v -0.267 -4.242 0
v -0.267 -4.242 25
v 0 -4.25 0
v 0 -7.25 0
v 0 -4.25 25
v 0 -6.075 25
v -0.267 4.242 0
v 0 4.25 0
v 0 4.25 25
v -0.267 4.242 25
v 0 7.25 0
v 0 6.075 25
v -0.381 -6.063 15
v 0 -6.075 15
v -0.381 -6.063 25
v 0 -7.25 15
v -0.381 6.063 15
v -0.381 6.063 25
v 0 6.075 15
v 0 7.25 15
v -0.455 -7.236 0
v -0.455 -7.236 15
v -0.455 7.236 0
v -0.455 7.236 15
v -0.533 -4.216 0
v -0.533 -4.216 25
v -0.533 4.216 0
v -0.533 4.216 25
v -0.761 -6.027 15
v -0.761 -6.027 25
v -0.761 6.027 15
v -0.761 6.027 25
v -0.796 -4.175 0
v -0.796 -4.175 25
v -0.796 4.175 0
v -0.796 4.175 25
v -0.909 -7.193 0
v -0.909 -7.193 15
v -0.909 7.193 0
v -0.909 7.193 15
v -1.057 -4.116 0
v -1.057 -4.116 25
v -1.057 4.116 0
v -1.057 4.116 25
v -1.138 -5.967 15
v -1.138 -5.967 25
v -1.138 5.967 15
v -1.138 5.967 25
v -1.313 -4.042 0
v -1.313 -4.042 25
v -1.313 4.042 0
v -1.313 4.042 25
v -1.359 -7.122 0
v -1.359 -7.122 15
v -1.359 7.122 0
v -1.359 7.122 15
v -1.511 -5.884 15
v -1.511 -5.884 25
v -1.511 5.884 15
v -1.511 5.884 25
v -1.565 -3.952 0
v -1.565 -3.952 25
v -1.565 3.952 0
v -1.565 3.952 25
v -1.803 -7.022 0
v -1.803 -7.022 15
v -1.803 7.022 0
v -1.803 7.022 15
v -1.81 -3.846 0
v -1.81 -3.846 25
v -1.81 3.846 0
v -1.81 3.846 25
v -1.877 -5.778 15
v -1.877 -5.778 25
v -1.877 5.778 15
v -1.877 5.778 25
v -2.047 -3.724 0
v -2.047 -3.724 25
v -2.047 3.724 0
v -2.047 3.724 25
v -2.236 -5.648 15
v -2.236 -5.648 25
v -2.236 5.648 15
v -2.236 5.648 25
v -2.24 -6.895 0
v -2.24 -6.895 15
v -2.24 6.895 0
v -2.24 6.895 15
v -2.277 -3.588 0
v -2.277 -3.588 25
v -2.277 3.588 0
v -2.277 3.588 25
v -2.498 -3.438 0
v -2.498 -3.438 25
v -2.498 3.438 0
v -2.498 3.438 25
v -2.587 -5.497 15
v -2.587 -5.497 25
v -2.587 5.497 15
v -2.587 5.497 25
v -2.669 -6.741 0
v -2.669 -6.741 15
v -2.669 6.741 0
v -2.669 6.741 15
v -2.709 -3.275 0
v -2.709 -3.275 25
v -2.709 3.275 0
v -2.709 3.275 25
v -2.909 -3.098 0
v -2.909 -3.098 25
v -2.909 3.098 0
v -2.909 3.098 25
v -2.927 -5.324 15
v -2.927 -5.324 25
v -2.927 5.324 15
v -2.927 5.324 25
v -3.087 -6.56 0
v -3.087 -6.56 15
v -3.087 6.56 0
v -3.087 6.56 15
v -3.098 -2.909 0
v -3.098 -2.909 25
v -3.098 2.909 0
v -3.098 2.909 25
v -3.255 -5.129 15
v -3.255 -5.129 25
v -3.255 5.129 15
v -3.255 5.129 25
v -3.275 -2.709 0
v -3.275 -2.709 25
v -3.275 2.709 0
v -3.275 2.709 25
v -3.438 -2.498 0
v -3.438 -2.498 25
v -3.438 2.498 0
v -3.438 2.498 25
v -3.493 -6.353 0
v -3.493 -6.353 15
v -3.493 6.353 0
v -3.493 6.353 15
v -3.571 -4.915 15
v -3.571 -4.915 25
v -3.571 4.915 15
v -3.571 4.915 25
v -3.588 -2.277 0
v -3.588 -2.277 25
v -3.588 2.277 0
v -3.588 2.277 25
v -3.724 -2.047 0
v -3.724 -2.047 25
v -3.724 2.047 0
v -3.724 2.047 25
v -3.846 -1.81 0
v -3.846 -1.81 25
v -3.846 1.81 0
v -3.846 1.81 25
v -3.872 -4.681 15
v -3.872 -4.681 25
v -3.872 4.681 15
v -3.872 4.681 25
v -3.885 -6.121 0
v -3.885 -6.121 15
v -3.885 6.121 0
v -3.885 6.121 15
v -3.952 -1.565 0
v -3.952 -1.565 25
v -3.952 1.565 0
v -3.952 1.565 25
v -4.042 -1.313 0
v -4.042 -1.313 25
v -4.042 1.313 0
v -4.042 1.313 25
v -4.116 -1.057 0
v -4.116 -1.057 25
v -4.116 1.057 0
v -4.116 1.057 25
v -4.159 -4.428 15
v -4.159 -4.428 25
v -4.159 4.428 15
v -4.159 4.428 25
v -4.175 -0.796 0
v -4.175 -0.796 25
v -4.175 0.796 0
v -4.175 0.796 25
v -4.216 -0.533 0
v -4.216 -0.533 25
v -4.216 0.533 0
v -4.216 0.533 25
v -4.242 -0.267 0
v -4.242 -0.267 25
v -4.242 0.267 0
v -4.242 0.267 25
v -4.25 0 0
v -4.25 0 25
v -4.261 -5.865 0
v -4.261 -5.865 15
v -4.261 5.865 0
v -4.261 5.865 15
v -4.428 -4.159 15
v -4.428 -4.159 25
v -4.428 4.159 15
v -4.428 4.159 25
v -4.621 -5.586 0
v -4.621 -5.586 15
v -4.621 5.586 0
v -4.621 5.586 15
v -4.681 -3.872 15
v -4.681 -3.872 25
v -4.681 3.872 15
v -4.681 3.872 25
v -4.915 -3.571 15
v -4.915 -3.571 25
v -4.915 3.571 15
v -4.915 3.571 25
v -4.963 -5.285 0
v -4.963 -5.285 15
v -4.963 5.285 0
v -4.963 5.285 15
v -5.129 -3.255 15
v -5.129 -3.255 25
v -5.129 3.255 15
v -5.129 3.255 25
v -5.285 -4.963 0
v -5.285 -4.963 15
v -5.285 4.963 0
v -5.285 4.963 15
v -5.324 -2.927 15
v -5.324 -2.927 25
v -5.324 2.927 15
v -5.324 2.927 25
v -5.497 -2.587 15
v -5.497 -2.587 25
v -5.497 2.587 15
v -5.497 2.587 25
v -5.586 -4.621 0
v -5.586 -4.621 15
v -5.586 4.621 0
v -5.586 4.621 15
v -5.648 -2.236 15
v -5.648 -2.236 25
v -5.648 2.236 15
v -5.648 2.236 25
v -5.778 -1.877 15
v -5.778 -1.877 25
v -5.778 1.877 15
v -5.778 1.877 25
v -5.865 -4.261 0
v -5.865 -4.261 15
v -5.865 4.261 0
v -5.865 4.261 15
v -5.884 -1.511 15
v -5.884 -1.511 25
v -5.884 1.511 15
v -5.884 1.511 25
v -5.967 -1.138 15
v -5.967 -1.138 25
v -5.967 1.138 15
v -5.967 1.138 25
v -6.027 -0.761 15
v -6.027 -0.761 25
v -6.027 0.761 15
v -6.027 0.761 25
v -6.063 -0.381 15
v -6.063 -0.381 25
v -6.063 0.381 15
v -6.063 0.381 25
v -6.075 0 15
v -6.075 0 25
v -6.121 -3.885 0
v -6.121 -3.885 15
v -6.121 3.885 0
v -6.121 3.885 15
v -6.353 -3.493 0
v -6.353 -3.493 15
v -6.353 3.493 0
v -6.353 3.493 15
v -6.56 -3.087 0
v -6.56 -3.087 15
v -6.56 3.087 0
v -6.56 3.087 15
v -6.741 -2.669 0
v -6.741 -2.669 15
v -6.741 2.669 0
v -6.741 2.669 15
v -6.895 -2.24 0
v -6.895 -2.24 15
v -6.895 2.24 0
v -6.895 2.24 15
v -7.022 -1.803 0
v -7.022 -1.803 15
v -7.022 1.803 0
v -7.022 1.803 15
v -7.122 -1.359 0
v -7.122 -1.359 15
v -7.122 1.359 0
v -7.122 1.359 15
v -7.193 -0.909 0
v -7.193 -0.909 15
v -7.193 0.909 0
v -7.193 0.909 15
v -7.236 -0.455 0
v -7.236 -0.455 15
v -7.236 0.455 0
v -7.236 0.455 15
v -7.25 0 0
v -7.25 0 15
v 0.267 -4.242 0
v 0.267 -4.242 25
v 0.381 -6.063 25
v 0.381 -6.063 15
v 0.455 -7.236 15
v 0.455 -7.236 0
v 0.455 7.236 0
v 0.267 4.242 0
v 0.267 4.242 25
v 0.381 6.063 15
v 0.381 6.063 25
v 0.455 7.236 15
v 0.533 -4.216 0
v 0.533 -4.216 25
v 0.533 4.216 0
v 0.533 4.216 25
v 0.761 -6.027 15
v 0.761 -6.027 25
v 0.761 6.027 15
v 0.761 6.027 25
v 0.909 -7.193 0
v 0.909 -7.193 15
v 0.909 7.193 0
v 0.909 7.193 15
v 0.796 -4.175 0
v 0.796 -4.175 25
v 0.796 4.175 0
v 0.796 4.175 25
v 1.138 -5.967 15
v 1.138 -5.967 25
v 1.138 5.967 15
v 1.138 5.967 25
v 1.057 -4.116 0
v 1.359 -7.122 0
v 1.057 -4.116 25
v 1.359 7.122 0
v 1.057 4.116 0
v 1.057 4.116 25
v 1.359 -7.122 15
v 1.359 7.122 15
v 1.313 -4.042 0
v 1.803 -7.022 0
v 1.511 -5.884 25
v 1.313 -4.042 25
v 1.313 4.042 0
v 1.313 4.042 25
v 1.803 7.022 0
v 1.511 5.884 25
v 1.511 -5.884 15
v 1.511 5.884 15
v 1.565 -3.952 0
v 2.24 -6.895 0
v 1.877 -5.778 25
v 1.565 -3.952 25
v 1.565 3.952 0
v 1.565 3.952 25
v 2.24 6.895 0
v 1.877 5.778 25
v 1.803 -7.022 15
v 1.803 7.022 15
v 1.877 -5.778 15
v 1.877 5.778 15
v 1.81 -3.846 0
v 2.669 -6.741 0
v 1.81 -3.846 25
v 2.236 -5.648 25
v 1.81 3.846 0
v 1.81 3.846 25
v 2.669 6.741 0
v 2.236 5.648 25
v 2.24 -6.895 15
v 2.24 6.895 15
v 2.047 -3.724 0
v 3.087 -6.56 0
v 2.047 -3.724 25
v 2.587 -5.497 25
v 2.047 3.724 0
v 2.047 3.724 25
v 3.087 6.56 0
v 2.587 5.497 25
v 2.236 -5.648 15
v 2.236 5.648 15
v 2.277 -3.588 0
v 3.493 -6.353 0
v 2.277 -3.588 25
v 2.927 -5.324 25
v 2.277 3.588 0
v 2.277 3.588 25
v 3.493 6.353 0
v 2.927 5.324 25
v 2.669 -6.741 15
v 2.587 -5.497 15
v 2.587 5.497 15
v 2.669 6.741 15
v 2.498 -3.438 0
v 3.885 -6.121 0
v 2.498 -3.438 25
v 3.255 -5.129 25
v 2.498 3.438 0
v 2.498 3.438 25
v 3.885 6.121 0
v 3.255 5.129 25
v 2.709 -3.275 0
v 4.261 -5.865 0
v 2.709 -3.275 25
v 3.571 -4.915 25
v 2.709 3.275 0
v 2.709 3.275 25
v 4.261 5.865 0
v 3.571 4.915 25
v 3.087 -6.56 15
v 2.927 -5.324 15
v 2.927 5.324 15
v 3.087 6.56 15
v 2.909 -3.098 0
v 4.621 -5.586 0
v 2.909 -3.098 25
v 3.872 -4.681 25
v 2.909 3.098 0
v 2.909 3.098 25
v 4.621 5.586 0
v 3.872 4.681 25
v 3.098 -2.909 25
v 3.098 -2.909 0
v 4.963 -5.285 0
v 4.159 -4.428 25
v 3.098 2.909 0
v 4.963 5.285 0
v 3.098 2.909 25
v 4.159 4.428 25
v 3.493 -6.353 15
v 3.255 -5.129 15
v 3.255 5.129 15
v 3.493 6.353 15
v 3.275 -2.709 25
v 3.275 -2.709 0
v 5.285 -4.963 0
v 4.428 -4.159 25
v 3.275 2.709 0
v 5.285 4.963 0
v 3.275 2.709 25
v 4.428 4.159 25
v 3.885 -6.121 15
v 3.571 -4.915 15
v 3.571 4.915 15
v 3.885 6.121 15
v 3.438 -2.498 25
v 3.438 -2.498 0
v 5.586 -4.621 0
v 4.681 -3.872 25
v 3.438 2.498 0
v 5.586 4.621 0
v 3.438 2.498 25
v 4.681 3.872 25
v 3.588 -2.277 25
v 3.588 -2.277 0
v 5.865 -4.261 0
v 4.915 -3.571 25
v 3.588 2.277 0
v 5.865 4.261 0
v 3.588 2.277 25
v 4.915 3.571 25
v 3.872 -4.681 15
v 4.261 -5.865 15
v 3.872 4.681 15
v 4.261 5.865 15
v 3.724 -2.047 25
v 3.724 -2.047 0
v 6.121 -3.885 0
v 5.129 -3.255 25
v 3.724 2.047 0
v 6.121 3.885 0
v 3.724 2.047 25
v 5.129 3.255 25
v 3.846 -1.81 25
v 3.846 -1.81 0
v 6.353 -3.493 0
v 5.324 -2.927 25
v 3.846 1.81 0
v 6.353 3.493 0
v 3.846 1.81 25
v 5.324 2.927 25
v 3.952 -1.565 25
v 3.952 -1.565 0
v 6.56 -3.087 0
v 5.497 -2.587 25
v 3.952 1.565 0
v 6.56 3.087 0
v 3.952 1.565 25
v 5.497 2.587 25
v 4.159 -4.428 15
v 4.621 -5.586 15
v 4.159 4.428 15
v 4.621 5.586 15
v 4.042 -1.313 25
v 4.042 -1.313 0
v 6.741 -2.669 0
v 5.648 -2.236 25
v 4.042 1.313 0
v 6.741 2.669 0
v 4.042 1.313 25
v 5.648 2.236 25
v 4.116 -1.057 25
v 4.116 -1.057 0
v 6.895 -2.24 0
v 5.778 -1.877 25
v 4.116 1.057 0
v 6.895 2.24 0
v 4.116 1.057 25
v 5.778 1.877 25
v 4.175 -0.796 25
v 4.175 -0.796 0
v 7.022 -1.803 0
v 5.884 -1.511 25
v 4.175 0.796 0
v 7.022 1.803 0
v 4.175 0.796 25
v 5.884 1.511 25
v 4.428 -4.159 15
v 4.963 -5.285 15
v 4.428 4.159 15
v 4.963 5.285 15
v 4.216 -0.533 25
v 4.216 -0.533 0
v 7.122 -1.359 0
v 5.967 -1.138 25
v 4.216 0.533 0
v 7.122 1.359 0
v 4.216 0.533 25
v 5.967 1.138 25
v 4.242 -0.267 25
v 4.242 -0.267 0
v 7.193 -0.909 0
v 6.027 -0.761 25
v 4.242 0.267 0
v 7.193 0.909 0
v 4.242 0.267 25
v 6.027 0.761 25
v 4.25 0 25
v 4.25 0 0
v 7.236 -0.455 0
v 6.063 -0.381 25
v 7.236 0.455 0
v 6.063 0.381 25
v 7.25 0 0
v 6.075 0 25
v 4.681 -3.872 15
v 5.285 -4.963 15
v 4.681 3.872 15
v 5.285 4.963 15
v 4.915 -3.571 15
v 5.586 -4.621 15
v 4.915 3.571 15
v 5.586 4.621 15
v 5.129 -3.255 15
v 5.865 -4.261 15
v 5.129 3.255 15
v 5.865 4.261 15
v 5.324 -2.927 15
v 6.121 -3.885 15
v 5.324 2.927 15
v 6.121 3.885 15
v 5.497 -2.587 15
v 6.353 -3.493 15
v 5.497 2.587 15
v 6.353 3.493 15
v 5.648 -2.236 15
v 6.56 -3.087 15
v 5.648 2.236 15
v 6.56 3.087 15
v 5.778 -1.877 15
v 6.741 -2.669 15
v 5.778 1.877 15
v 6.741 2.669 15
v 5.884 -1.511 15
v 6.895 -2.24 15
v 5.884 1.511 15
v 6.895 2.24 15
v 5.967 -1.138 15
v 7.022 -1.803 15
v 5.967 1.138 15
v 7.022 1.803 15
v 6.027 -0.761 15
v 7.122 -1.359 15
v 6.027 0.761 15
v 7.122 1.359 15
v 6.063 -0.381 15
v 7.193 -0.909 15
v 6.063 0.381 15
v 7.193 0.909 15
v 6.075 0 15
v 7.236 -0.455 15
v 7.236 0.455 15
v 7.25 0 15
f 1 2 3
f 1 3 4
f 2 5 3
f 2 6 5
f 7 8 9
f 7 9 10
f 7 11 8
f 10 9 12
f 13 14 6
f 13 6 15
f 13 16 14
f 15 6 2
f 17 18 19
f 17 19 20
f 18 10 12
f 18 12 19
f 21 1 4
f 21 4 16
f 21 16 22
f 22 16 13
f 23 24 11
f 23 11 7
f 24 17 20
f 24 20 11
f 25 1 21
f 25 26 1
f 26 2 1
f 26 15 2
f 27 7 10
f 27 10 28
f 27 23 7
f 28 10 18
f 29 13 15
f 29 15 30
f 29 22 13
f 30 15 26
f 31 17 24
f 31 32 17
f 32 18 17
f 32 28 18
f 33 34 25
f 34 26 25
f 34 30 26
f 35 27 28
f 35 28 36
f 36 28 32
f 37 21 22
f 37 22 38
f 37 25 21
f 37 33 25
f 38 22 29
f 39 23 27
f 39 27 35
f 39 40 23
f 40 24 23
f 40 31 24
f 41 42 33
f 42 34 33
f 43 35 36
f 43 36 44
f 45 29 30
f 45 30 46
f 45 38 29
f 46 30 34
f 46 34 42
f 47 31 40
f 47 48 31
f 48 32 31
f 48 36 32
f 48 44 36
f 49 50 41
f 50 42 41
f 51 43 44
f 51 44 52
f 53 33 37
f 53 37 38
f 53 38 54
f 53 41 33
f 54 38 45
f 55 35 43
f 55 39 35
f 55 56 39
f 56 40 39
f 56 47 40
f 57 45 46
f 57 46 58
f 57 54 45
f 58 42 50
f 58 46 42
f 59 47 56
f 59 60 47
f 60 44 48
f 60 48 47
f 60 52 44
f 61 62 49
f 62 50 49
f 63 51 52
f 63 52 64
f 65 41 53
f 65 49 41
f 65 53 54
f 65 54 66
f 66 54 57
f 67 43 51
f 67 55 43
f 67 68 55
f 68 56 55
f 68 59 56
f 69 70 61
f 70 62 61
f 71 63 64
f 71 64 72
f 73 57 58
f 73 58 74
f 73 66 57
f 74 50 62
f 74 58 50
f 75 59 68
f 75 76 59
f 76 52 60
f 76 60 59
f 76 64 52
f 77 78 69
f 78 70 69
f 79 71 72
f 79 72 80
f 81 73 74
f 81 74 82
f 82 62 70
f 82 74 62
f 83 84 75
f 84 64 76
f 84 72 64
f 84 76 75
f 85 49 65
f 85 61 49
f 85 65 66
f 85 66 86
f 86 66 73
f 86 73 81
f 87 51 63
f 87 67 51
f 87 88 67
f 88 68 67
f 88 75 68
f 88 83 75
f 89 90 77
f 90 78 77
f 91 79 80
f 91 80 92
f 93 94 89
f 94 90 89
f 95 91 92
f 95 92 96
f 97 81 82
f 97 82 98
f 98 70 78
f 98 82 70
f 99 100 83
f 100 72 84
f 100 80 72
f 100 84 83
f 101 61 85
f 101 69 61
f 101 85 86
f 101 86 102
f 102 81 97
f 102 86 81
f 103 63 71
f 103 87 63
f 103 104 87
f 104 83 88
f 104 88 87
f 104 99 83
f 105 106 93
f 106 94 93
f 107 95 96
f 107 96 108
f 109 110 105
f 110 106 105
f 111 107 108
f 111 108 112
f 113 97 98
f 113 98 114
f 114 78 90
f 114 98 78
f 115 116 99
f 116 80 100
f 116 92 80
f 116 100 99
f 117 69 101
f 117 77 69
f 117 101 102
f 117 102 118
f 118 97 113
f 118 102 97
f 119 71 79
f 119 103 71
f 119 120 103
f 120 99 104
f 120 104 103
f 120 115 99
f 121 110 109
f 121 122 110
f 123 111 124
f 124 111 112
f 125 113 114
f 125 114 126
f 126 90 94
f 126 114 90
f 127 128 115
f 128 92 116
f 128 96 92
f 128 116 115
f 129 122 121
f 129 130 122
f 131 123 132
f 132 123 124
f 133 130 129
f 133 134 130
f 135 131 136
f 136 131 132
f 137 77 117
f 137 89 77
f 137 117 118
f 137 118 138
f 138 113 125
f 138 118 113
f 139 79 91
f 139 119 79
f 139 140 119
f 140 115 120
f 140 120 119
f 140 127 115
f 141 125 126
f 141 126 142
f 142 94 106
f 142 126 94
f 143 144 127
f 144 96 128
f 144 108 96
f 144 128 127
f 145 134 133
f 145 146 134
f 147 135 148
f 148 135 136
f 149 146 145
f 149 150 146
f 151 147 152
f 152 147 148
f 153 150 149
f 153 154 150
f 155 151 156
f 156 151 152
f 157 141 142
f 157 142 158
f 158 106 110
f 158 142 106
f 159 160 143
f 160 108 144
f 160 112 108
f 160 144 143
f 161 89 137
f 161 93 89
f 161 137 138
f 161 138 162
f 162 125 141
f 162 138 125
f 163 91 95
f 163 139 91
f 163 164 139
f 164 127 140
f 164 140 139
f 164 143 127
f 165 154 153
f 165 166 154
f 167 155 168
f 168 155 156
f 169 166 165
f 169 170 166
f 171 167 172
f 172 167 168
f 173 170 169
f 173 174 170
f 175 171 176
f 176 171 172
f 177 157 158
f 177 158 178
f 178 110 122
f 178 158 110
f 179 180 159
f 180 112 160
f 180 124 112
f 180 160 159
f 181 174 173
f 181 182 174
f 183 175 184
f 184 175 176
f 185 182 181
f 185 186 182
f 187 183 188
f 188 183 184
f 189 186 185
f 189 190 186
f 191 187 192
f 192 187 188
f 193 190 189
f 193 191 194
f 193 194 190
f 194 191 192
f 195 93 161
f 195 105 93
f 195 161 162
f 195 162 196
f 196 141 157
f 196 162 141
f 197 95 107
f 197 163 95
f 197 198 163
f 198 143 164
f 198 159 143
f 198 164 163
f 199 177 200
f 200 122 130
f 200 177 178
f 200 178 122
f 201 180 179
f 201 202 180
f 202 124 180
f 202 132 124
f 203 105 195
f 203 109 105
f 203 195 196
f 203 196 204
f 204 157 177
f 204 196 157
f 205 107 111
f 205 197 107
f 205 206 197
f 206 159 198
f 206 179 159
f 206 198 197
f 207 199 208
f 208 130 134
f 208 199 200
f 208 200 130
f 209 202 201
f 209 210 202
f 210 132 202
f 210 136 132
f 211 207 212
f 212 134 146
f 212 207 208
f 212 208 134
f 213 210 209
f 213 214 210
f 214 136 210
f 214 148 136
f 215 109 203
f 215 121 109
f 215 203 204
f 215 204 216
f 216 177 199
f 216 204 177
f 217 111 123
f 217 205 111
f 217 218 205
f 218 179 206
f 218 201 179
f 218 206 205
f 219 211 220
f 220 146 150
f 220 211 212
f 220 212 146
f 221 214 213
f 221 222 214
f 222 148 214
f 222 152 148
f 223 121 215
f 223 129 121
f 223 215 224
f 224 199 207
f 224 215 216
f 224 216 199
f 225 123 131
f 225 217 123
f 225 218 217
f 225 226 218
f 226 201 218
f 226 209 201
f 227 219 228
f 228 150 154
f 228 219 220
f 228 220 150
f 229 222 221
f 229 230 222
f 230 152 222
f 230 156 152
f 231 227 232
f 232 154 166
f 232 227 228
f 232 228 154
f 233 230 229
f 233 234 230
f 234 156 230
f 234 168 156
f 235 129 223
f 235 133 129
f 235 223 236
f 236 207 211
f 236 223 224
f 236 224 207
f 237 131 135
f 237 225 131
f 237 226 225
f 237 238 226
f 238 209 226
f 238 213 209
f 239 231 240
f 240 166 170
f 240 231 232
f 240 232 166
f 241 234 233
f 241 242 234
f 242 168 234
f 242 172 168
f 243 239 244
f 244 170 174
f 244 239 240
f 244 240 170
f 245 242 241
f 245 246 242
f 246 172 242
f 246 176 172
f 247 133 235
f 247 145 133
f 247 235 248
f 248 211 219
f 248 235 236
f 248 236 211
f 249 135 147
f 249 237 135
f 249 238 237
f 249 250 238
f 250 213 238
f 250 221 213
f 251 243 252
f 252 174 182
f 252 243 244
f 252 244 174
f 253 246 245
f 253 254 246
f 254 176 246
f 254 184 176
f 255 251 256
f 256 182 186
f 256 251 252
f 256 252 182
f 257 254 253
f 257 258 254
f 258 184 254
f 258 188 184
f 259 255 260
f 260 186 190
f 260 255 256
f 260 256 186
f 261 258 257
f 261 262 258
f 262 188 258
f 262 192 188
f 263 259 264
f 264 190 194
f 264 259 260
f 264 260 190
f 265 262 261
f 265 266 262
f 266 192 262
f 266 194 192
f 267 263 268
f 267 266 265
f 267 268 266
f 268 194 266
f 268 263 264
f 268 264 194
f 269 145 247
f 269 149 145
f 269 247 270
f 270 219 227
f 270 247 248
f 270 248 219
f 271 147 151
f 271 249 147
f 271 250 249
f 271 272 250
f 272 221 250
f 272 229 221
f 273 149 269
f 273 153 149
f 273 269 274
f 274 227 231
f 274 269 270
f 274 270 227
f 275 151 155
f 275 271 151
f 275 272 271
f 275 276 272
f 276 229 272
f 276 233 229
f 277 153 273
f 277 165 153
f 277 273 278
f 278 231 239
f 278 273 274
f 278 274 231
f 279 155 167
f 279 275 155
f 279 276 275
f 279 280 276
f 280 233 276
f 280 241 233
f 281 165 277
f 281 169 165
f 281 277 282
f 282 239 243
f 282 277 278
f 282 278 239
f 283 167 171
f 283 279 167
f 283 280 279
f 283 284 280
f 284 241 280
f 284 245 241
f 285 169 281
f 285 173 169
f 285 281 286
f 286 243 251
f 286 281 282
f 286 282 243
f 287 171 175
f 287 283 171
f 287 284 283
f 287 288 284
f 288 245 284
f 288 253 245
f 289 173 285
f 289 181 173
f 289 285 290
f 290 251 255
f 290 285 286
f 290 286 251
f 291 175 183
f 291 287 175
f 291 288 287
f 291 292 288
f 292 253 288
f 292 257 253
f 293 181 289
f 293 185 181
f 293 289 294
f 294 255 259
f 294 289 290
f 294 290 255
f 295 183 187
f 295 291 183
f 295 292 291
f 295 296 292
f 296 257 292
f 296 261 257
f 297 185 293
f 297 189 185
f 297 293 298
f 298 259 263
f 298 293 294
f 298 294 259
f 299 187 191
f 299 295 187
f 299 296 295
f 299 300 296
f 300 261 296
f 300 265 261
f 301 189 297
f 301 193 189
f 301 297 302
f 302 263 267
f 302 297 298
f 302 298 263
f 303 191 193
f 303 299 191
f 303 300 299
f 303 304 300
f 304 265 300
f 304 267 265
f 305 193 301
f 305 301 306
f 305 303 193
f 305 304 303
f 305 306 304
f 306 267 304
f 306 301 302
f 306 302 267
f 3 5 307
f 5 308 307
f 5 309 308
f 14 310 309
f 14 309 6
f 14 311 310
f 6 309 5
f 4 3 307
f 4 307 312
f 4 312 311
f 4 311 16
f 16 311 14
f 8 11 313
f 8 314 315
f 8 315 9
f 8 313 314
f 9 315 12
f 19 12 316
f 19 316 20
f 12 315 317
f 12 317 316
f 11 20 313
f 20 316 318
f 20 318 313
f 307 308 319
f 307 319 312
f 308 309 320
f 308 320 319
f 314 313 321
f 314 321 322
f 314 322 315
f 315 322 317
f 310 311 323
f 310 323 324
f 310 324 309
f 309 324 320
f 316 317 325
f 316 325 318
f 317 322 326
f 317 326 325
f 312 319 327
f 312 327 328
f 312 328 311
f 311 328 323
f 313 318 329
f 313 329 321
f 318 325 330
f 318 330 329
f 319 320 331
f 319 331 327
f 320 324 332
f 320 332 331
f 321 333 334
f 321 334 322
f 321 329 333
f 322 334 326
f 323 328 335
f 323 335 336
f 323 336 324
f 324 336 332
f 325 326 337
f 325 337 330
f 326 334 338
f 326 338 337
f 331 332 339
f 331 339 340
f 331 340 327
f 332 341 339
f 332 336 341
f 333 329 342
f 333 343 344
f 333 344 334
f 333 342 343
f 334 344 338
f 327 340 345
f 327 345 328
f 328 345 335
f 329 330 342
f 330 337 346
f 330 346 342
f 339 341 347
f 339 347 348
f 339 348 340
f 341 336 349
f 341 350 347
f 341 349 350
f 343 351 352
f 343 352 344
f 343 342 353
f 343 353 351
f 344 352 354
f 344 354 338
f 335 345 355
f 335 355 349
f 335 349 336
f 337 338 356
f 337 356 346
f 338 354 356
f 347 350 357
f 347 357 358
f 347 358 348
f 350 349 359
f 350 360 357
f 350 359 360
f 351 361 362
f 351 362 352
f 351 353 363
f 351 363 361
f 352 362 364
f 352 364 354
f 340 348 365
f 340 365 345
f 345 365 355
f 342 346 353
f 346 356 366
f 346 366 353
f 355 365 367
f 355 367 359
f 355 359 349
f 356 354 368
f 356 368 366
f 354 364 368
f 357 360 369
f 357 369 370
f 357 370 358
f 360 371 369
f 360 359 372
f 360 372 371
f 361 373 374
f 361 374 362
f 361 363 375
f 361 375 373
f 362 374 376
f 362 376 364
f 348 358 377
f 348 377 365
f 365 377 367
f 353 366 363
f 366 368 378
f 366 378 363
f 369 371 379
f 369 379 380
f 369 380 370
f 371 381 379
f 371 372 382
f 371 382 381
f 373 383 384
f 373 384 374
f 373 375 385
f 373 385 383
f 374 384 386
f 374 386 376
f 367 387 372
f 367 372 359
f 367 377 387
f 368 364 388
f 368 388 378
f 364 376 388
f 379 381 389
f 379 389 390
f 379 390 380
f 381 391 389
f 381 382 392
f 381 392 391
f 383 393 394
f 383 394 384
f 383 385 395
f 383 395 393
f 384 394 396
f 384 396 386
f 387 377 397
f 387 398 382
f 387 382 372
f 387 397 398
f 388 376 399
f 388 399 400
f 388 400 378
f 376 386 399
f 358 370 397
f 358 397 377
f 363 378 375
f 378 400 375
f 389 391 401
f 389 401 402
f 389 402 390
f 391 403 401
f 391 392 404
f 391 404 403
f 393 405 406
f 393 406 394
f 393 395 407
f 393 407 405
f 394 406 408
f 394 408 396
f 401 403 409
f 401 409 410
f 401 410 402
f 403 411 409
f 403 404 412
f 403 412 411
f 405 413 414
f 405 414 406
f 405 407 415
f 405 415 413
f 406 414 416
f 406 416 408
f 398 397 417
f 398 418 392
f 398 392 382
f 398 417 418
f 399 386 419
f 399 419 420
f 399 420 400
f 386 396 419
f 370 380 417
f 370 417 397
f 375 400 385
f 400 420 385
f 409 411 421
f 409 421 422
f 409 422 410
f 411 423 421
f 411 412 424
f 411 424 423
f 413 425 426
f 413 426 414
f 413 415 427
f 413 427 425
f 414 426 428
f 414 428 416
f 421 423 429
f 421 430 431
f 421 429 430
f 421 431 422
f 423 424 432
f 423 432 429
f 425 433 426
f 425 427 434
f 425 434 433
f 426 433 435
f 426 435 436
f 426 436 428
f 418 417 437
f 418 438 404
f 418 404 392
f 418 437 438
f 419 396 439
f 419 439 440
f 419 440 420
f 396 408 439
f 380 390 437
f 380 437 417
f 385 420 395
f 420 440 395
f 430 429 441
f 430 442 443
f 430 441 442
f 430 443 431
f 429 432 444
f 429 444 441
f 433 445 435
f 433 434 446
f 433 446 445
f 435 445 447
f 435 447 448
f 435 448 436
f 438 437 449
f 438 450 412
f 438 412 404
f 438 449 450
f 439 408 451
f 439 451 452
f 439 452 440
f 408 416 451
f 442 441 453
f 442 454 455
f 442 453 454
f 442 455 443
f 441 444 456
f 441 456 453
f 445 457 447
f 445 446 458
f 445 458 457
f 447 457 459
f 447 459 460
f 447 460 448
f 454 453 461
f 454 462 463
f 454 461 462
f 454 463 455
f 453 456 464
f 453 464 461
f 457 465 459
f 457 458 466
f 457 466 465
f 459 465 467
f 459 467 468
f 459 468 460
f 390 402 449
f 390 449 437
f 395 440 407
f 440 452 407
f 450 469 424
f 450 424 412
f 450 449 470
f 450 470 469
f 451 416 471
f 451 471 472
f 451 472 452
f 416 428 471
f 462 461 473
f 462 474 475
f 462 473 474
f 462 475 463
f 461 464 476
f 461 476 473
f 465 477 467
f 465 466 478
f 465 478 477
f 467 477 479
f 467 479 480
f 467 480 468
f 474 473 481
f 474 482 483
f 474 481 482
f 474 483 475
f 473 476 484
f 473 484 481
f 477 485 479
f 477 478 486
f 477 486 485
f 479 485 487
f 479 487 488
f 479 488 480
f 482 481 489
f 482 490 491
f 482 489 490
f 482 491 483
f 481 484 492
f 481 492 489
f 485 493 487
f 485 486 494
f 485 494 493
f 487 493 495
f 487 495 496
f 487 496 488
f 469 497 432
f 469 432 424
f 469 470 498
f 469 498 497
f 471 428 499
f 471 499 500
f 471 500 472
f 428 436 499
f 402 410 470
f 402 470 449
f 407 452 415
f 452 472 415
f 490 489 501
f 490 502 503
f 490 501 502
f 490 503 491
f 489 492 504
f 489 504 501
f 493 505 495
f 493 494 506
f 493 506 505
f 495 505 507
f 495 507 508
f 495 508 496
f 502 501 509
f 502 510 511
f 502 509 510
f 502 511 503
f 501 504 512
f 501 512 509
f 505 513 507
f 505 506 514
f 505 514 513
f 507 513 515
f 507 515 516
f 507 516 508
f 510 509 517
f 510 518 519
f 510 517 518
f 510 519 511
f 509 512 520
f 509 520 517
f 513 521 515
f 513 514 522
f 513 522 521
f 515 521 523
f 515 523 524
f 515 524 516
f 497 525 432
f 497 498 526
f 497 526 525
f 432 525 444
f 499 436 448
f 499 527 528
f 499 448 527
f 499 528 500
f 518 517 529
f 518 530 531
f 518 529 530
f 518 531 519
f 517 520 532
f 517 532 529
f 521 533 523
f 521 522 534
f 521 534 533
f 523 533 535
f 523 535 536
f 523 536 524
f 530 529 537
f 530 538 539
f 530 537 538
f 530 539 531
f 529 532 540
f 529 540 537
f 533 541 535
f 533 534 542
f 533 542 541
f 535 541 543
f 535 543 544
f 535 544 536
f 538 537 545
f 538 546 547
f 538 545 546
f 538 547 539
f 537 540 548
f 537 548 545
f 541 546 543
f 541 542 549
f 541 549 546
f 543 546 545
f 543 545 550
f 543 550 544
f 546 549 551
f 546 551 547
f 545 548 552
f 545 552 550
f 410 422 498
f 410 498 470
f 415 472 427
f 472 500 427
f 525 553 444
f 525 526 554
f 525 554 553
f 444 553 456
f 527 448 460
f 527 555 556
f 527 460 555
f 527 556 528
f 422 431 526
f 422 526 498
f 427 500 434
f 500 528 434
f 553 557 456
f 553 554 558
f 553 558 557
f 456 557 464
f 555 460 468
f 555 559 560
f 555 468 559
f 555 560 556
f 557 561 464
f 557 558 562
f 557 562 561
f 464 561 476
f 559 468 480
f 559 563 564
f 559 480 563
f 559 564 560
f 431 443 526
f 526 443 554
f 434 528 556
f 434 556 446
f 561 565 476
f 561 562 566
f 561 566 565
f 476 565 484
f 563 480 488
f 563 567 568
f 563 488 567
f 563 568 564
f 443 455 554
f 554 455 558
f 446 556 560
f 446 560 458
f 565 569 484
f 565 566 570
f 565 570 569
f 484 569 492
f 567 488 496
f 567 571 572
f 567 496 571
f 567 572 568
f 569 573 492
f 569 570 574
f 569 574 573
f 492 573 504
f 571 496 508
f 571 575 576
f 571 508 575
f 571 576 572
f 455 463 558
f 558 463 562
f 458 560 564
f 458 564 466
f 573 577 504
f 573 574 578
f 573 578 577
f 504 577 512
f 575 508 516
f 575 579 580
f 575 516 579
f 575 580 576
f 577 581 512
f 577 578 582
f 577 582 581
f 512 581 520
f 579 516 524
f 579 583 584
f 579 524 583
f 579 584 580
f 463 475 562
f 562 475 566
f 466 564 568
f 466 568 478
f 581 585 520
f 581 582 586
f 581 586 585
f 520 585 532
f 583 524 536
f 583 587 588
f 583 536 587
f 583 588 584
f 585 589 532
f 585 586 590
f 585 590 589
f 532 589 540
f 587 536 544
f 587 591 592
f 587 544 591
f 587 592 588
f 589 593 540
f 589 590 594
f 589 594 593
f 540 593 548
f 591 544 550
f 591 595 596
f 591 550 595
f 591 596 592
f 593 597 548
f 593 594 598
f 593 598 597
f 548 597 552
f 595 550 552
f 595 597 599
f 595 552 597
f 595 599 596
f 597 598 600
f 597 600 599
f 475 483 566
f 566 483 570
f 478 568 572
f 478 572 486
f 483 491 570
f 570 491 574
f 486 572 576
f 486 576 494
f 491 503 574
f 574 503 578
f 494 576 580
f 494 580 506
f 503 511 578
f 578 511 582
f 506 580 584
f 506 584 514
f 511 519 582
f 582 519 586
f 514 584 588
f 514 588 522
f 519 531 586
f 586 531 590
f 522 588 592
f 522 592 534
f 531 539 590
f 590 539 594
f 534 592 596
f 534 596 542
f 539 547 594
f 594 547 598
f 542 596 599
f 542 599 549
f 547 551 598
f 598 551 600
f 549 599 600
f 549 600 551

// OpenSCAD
//  Pripravek pro testovani rozsahu kuloveho loziska EFSM-12

include <../../parameters.scad>
$fn = 100;

module 888_3015(){
    height =  15;
    neck = 10;

    difference(){
        union(){
            cylinder(d = 15 - 0.5, h = height);
            cylinder(d = bearing_efsm_12_d, h = height+neck);
        }
        cylinder(d = M8_screw_diameter, h = 50);
    }
}


888_3015();
